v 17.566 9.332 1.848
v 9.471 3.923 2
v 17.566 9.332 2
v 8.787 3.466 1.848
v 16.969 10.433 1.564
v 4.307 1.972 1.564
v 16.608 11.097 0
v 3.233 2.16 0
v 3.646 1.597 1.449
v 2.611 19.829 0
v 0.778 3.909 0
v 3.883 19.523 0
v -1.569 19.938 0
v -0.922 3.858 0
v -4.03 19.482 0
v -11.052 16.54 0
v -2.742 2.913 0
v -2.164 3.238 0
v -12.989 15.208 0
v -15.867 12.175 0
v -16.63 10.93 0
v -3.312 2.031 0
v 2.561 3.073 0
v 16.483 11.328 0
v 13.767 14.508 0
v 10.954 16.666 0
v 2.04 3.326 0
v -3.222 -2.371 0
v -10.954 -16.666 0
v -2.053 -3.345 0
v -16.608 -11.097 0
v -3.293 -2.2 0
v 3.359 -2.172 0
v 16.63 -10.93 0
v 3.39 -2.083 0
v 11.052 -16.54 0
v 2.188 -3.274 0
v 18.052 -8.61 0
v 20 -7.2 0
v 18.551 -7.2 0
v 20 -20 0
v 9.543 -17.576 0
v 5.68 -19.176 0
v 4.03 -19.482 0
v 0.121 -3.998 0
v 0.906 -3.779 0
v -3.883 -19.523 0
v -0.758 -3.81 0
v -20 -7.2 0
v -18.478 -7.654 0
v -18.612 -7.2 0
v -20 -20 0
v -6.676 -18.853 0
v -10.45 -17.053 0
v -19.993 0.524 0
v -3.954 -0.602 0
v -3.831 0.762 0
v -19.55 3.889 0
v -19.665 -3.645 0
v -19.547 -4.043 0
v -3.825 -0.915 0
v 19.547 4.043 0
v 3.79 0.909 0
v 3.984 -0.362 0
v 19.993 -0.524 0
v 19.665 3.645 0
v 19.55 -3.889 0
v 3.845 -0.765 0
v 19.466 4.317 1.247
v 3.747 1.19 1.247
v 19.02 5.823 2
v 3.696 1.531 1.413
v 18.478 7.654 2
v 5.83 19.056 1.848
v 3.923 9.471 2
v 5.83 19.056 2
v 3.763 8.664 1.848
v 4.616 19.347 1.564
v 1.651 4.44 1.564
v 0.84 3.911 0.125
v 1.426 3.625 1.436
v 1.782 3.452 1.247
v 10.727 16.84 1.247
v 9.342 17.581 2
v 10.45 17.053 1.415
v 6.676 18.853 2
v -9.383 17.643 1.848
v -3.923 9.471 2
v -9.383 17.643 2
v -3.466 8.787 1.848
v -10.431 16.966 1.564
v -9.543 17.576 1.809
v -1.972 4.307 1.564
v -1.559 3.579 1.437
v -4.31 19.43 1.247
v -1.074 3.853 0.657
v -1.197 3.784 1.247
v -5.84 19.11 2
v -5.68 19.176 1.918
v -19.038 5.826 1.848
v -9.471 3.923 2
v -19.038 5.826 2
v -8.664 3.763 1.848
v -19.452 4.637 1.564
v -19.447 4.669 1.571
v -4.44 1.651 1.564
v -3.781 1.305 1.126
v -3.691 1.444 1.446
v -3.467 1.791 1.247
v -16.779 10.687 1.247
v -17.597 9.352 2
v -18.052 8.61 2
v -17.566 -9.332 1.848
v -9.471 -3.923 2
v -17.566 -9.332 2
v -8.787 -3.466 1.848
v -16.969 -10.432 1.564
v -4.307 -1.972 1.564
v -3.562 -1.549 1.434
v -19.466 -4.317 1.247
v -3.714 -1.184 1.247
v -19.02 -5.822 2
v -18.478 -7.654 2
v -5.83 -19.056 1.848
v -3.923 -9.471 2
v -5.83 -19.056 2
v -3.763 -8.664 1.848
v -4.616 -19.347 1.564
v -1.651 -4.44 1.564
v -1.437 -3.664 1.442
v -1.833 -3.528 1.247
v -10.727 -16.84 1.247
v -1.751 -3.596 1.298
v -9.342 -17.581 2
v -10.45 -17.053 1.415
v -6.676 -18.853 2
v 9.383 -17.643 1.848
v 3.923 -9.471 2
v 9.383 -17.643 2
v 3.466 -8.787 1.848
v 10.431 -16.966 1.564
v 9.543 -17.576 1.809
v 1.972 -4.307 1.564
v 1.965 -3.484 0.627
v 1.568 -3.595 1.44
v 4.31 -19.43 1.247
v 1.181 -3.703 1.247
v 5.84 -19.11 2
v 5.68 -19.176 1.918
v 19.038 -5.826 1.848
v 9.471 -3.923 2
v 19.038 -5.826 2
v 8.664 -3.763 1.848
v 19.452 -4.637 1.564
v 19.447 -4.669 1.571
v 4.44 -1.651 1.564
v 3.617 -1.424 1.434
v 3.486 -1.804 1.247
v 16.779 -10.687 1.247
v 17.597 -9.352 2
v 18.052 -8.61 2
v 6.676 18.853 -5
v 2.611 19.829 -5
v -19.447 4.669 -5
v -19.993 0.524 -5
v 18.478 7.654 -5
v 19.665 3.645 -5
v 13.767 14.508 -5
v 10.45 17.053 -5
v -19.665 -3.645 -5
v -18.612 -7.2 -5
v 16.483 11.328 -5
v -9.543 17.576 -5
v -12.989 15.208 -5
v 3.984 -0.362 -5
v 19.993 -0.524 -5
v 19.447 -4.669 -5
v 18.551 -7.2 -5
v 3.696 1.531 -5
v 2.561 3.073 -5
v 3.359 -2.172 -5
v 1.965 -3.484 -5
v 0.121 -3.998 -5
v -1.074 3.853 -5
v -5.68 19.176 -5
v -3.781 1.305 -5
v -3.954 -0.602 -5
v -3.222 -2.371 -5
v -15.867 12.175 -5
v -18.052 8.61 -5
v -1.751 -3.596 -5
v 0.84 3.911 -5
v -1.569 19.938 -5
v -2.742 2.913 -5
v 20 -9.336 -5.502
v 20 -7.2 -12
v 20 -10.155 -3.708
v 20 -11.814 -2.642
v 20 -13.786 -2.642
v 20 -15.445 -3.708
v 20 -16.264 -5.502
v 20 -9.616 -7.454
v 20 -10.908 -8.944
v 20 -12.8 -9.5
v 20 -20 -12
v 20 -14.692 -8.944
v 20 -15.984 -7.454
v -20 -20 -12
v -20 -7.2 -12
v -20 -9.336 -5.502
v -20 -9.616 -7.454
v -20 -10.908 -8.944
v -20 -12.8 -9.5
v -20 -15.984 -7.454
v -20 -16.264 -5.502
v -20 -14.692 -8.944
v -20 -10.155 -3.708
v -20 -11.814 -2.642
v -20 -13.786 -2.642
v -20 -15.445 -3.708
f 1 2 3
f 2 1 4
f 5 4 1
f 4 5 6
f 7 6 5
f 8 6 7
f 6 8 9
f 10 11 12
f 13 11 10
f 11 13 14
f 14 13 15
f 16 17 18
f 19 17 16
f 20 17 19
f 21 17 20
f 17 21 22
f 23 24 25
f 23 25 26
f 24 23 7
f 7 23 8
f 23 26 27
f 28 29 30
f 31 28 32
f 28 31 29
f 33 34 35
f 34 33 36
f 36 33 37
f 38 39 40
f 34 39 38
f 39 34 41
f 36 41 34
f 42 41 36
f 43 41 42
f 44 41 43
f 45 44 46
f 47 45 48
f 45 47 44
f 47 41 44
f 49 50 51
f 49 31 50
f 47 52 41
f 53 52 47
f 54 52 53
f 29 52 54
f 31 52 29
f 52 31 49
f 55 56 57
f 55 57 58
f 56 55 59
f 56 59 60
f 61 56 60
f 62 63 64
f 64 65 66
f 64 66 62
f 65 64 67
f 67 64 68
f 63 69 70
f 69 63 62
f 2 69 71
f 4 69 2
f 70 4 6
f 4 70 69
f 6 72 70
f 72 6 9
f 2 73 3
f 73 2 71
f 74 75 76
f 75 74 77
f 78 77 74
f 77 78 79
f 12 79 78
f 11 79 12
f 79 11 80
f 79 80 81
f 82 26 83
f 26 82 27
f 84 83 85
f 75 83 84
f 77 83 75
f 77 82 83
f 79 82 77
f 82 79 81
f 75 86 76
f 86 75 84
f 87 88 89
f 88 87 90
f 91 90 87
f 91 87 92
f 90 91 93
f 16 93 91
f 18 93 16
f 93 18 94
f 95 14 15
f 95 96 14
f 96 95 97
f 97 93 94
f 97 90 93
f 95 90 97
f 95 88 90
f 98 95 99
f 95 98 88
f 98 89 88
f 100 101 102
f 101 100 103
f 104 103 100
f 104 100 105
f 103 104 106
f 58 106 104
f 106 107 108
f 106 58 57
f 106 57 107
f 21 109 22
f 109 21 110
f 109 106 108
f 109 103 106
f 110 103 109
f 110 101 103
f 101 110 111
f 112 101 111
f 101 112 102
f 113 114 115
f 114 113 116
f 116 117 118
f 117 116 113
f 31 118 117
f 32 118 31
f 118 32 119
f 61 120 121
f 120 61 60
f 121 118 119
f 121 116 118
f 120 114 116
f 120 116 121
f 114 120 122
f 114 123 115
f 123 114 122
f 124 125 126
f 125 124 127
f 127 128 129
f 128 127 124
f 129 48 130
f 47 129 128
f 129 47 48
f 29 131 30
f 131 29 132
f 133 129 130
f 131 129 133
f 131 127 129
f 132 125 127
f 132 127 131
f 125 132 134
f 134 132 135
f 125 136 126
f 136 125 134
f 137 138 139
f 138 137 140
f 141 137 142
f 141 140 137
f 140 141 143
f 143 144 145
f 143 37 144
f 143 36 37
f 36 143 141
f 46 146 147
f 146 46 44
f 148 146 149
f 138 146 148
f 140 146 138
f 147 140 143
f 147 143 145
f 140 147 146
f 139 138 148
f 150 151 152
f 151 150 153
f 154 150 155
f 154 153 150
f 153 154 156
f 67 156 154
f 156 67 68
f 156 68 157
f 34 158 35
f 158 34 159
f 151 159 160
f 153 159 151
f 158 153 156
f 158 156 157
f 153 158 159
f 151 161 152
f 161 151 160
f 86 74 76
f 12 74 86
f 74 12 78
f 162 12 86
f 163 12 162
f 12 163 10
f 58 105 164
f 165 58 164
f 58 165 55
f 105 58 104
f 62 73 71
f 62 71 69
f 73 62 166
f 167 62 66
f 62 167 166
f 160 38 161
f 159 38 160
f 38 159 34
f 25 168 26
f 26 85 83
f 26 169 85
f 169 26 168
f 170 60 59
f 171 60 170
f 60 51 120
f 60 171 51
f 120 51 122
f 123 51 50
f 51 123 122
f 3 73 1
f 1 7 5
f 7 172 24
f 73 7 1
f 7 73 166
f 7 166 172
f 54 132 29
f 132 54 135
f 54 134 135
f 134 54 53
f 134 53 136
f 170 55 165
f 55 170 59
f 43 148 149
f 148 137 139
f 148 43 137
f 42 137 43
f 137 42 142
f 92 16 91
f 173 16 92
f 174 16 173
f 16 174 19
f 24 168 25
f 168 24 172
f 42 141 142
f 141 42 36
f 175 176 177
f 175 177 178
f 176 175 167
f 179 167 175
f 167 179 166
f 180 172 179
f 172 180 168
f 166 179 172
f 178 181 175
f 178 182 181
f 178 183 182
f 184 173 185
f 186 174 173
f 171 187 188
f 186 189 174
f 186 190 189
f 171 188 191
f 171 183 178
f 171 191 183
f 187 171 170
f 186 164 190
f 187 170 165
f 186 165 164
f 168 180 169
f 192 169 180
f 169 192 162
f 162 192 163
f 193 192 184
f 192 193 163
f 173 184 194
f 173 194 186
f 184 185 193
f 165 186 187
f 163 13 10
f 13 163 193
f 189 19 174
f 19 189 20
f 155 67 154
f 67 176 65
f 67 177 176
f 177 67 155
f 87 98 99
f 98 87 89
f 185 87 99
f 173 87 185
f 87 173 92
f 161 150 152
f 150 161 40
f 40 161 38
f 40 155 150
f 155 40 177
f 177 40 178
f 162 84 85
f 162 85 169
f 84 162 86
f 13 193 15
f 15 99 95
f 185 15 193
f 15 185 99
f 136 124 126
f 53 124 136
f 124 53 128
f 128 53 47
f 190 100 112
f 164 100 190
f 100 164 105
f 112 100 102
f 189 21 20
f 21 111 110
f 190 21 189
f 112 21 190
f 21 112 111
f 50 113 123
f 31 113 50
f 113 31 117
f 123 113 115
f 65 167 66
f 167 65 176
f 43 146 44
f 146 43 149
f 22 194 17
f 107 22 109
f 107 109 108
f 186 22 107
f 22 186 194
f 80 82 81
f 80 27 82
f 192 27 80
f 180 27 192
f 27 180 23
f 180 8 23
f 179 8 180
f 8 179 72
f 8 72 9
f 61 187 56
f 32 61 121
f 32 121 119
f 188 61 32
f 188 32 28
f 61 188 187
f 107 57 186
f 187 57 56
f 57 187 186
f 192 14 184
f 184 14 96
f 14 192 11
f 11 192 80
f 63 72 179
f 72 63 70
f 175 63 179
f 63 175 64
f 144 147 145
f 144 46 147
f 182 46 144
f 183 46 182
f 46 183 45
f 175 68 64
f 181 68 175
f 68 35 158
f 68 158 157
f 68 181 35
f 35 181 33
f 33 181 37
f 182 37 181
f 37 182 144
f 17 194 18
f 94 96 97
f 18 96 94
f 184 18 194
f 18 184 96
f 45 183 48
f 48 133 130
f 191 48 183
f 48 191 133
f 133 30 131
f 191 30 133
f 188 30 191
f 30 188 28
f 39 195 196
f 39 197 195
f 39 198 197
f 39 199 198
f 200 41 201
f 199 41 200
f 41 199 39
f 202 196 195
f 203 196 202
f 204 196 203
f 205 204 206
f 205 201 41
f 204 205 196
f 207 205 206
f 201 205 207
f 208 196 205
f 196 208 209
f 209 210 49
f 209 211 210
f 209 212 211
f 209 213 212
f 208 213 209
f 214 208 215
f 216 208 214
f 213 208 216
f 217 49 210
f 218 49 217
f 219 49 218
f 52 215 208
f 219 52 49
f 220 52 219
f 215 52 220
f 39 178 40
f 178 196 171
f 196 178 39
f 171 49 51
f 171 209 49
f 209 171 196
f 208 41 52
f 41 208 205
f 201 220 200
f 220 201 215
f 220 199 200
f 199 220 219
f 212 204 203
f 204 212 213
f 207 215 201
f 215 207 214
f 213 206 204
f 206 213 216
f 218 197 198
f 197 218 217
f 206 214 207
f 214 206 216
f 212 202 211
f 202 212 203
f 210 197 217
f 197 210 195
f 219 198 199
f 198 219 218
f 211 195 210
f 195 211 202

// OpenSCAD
// file: common.scad
/// Rotate child nodes towards endpoint as if they were placed at the
/// `start` position
module look_at(
     start, ///< Starting position
     end ///< Aim point
     ) {
    rotate([
        -acos((end[2] - start[2]) / norm(start - end)),
        0,
        -atan2(end[0] - start[0], end[1] - start[1])
    ]) {
        children();
    }
}

/// Translate child nodes to start point and rotate them towards end
/// point
module move_look_at(start, end) {
    translate(start) look_at(start, end) {
        children();
    }
}


/// Rotate child nodes so that the vector [0,0,1] (normal to the XY
/// plane) would would point towards `end` point.
module look_at0(end) {
    look_at([ 0, 0, 0 ], [ end[0], end[1], end[2] ]) {
        children();
    }
}


module move_look_at_test() {
    for (i = [0:10:360]) {
        r = 80;
        x = r * cos(i);
        y = r * sin(i);
        move_look_at(start = [ x, y, 0 ], end = [ 0, 0, 0 ]) {
            cylinder(4, 4);
        }
    }

    look_at0([ 1, 2, 10 ]) {
         cylinder(10, 10);
    }
}
// main file
// clang-format off
use <common.scad>;
// clang-format on

teeth_count  = 8;
teeth_length = 20;
teeth_height = 2;

center_cutout_r    = 4;
connector_cutour_r = 3.5;
bottom_thickness   = 5;

teeth_angle = 360 / (teeth_count * 2);


module line_bevel(start, end, radius, rot = 180) {
    length        = norm(end - start);
    edge_distance = radius;

    move_look_at(start, end) rotate([ 0, 0, rot ])
        translate([ -edge_distance, -edge_distance, 0 ]) {
        difference() {
            cube([ radius + 1, radius + 1, length ]);
            translate([ 0, 0, -1 ]) {
                cylinder(length + 2, radius, radius, [ 0, 0, 0 ]);
            }
        }
    }
}

module triangle_beveled(angle, height, length) {
    neg_point = [ length, length * tan(angle / 2) ];
    pos_point = [ length, -length * tan(angle / 2) ];

    difference() {
        linear_extrude(height) {
            polygon([ [ 0, 0 ], neg_point, pos_point ]);
        }
        line_bevel(
            start  = [ 0, 0, height ],
            end    = [ neg_point[0], neg_point[1], height ],
            radius = height);

        line_bevel(
            start  = [ 0, 0, height ],
            end    = [ pos_point[0], pos_point[1], height ],
            radius = height,
            rot    = -90);
    }
}


module flat_teeth() {
    for (idx = [0:2:teeth_count * 2]) {
        angle = (360 / (teeth_count * 2)) * idx;
        rotate([ 0, 0, angle ]) {
            triangle_beveled(
                angle  = 360 / (teeth_count * 2),
                height = teeth_height,
                length = teeth_length);
        }
    }
}


module cube_cylinder_cutout(height, radius) {
    difference() {
        translate([ -radius, -radius, 0 ]) {
            cube([ 2 * radius, 2 * radius, height ]);
        }

        translate([ 0, 0, -1 ]) {
            cylinder(height + 2, r1 = radius, r2 = radius);
        }
    }
}


module cutting_cylinder(radius, height) {
    translate([ 0, 0, -1 ]) cylinder(height + 2, r1 = radius, r2 = radius);
}


module teeth_gear_half() {
    difference() {
        union() {
            flat_teeth();
            translate([ 0, 0, -bottom_thickness ]) {
                cylinder(
                    bottom_thickness,
                    r1 = teeth_length,
                    r2 = teeth_length);
            }
        }
        translate([ 0, 0, -1 ]) //
            cube_cylinder_cutout(2 * bottom_thickness, teeth_length);

        translate([ 0, 0, -bottom_thickness ]) //
            cutting_cylinder(center_cutout_r, 2 * bottom_thickness);
    }
}


module main(even_teeth = true) {
    l             = teeth_length;
    holder_depth  = l * 0.6;
    holder_height = (l - center_cutout_r) * 0.8;
    difference() {
        union() {
            translate([ -l, -l, -holder_depth ]) //
                cube([ 2 * l, holder_height, holder_depth ]);

            if (even_teeth) {
                teeth_gear_half();
            } else {
                rotate([ 0, 0, teeth_angle ]) teeth_gear_half();
            }
        }


        translate([ -l, -holder_height, -holder_depth / 2 ]) //
            rotate([ 0, 90, 0 ])                             //
            cutting_cylinder(connector_cutour_r, 2 * l);
    }
}

main(false);
